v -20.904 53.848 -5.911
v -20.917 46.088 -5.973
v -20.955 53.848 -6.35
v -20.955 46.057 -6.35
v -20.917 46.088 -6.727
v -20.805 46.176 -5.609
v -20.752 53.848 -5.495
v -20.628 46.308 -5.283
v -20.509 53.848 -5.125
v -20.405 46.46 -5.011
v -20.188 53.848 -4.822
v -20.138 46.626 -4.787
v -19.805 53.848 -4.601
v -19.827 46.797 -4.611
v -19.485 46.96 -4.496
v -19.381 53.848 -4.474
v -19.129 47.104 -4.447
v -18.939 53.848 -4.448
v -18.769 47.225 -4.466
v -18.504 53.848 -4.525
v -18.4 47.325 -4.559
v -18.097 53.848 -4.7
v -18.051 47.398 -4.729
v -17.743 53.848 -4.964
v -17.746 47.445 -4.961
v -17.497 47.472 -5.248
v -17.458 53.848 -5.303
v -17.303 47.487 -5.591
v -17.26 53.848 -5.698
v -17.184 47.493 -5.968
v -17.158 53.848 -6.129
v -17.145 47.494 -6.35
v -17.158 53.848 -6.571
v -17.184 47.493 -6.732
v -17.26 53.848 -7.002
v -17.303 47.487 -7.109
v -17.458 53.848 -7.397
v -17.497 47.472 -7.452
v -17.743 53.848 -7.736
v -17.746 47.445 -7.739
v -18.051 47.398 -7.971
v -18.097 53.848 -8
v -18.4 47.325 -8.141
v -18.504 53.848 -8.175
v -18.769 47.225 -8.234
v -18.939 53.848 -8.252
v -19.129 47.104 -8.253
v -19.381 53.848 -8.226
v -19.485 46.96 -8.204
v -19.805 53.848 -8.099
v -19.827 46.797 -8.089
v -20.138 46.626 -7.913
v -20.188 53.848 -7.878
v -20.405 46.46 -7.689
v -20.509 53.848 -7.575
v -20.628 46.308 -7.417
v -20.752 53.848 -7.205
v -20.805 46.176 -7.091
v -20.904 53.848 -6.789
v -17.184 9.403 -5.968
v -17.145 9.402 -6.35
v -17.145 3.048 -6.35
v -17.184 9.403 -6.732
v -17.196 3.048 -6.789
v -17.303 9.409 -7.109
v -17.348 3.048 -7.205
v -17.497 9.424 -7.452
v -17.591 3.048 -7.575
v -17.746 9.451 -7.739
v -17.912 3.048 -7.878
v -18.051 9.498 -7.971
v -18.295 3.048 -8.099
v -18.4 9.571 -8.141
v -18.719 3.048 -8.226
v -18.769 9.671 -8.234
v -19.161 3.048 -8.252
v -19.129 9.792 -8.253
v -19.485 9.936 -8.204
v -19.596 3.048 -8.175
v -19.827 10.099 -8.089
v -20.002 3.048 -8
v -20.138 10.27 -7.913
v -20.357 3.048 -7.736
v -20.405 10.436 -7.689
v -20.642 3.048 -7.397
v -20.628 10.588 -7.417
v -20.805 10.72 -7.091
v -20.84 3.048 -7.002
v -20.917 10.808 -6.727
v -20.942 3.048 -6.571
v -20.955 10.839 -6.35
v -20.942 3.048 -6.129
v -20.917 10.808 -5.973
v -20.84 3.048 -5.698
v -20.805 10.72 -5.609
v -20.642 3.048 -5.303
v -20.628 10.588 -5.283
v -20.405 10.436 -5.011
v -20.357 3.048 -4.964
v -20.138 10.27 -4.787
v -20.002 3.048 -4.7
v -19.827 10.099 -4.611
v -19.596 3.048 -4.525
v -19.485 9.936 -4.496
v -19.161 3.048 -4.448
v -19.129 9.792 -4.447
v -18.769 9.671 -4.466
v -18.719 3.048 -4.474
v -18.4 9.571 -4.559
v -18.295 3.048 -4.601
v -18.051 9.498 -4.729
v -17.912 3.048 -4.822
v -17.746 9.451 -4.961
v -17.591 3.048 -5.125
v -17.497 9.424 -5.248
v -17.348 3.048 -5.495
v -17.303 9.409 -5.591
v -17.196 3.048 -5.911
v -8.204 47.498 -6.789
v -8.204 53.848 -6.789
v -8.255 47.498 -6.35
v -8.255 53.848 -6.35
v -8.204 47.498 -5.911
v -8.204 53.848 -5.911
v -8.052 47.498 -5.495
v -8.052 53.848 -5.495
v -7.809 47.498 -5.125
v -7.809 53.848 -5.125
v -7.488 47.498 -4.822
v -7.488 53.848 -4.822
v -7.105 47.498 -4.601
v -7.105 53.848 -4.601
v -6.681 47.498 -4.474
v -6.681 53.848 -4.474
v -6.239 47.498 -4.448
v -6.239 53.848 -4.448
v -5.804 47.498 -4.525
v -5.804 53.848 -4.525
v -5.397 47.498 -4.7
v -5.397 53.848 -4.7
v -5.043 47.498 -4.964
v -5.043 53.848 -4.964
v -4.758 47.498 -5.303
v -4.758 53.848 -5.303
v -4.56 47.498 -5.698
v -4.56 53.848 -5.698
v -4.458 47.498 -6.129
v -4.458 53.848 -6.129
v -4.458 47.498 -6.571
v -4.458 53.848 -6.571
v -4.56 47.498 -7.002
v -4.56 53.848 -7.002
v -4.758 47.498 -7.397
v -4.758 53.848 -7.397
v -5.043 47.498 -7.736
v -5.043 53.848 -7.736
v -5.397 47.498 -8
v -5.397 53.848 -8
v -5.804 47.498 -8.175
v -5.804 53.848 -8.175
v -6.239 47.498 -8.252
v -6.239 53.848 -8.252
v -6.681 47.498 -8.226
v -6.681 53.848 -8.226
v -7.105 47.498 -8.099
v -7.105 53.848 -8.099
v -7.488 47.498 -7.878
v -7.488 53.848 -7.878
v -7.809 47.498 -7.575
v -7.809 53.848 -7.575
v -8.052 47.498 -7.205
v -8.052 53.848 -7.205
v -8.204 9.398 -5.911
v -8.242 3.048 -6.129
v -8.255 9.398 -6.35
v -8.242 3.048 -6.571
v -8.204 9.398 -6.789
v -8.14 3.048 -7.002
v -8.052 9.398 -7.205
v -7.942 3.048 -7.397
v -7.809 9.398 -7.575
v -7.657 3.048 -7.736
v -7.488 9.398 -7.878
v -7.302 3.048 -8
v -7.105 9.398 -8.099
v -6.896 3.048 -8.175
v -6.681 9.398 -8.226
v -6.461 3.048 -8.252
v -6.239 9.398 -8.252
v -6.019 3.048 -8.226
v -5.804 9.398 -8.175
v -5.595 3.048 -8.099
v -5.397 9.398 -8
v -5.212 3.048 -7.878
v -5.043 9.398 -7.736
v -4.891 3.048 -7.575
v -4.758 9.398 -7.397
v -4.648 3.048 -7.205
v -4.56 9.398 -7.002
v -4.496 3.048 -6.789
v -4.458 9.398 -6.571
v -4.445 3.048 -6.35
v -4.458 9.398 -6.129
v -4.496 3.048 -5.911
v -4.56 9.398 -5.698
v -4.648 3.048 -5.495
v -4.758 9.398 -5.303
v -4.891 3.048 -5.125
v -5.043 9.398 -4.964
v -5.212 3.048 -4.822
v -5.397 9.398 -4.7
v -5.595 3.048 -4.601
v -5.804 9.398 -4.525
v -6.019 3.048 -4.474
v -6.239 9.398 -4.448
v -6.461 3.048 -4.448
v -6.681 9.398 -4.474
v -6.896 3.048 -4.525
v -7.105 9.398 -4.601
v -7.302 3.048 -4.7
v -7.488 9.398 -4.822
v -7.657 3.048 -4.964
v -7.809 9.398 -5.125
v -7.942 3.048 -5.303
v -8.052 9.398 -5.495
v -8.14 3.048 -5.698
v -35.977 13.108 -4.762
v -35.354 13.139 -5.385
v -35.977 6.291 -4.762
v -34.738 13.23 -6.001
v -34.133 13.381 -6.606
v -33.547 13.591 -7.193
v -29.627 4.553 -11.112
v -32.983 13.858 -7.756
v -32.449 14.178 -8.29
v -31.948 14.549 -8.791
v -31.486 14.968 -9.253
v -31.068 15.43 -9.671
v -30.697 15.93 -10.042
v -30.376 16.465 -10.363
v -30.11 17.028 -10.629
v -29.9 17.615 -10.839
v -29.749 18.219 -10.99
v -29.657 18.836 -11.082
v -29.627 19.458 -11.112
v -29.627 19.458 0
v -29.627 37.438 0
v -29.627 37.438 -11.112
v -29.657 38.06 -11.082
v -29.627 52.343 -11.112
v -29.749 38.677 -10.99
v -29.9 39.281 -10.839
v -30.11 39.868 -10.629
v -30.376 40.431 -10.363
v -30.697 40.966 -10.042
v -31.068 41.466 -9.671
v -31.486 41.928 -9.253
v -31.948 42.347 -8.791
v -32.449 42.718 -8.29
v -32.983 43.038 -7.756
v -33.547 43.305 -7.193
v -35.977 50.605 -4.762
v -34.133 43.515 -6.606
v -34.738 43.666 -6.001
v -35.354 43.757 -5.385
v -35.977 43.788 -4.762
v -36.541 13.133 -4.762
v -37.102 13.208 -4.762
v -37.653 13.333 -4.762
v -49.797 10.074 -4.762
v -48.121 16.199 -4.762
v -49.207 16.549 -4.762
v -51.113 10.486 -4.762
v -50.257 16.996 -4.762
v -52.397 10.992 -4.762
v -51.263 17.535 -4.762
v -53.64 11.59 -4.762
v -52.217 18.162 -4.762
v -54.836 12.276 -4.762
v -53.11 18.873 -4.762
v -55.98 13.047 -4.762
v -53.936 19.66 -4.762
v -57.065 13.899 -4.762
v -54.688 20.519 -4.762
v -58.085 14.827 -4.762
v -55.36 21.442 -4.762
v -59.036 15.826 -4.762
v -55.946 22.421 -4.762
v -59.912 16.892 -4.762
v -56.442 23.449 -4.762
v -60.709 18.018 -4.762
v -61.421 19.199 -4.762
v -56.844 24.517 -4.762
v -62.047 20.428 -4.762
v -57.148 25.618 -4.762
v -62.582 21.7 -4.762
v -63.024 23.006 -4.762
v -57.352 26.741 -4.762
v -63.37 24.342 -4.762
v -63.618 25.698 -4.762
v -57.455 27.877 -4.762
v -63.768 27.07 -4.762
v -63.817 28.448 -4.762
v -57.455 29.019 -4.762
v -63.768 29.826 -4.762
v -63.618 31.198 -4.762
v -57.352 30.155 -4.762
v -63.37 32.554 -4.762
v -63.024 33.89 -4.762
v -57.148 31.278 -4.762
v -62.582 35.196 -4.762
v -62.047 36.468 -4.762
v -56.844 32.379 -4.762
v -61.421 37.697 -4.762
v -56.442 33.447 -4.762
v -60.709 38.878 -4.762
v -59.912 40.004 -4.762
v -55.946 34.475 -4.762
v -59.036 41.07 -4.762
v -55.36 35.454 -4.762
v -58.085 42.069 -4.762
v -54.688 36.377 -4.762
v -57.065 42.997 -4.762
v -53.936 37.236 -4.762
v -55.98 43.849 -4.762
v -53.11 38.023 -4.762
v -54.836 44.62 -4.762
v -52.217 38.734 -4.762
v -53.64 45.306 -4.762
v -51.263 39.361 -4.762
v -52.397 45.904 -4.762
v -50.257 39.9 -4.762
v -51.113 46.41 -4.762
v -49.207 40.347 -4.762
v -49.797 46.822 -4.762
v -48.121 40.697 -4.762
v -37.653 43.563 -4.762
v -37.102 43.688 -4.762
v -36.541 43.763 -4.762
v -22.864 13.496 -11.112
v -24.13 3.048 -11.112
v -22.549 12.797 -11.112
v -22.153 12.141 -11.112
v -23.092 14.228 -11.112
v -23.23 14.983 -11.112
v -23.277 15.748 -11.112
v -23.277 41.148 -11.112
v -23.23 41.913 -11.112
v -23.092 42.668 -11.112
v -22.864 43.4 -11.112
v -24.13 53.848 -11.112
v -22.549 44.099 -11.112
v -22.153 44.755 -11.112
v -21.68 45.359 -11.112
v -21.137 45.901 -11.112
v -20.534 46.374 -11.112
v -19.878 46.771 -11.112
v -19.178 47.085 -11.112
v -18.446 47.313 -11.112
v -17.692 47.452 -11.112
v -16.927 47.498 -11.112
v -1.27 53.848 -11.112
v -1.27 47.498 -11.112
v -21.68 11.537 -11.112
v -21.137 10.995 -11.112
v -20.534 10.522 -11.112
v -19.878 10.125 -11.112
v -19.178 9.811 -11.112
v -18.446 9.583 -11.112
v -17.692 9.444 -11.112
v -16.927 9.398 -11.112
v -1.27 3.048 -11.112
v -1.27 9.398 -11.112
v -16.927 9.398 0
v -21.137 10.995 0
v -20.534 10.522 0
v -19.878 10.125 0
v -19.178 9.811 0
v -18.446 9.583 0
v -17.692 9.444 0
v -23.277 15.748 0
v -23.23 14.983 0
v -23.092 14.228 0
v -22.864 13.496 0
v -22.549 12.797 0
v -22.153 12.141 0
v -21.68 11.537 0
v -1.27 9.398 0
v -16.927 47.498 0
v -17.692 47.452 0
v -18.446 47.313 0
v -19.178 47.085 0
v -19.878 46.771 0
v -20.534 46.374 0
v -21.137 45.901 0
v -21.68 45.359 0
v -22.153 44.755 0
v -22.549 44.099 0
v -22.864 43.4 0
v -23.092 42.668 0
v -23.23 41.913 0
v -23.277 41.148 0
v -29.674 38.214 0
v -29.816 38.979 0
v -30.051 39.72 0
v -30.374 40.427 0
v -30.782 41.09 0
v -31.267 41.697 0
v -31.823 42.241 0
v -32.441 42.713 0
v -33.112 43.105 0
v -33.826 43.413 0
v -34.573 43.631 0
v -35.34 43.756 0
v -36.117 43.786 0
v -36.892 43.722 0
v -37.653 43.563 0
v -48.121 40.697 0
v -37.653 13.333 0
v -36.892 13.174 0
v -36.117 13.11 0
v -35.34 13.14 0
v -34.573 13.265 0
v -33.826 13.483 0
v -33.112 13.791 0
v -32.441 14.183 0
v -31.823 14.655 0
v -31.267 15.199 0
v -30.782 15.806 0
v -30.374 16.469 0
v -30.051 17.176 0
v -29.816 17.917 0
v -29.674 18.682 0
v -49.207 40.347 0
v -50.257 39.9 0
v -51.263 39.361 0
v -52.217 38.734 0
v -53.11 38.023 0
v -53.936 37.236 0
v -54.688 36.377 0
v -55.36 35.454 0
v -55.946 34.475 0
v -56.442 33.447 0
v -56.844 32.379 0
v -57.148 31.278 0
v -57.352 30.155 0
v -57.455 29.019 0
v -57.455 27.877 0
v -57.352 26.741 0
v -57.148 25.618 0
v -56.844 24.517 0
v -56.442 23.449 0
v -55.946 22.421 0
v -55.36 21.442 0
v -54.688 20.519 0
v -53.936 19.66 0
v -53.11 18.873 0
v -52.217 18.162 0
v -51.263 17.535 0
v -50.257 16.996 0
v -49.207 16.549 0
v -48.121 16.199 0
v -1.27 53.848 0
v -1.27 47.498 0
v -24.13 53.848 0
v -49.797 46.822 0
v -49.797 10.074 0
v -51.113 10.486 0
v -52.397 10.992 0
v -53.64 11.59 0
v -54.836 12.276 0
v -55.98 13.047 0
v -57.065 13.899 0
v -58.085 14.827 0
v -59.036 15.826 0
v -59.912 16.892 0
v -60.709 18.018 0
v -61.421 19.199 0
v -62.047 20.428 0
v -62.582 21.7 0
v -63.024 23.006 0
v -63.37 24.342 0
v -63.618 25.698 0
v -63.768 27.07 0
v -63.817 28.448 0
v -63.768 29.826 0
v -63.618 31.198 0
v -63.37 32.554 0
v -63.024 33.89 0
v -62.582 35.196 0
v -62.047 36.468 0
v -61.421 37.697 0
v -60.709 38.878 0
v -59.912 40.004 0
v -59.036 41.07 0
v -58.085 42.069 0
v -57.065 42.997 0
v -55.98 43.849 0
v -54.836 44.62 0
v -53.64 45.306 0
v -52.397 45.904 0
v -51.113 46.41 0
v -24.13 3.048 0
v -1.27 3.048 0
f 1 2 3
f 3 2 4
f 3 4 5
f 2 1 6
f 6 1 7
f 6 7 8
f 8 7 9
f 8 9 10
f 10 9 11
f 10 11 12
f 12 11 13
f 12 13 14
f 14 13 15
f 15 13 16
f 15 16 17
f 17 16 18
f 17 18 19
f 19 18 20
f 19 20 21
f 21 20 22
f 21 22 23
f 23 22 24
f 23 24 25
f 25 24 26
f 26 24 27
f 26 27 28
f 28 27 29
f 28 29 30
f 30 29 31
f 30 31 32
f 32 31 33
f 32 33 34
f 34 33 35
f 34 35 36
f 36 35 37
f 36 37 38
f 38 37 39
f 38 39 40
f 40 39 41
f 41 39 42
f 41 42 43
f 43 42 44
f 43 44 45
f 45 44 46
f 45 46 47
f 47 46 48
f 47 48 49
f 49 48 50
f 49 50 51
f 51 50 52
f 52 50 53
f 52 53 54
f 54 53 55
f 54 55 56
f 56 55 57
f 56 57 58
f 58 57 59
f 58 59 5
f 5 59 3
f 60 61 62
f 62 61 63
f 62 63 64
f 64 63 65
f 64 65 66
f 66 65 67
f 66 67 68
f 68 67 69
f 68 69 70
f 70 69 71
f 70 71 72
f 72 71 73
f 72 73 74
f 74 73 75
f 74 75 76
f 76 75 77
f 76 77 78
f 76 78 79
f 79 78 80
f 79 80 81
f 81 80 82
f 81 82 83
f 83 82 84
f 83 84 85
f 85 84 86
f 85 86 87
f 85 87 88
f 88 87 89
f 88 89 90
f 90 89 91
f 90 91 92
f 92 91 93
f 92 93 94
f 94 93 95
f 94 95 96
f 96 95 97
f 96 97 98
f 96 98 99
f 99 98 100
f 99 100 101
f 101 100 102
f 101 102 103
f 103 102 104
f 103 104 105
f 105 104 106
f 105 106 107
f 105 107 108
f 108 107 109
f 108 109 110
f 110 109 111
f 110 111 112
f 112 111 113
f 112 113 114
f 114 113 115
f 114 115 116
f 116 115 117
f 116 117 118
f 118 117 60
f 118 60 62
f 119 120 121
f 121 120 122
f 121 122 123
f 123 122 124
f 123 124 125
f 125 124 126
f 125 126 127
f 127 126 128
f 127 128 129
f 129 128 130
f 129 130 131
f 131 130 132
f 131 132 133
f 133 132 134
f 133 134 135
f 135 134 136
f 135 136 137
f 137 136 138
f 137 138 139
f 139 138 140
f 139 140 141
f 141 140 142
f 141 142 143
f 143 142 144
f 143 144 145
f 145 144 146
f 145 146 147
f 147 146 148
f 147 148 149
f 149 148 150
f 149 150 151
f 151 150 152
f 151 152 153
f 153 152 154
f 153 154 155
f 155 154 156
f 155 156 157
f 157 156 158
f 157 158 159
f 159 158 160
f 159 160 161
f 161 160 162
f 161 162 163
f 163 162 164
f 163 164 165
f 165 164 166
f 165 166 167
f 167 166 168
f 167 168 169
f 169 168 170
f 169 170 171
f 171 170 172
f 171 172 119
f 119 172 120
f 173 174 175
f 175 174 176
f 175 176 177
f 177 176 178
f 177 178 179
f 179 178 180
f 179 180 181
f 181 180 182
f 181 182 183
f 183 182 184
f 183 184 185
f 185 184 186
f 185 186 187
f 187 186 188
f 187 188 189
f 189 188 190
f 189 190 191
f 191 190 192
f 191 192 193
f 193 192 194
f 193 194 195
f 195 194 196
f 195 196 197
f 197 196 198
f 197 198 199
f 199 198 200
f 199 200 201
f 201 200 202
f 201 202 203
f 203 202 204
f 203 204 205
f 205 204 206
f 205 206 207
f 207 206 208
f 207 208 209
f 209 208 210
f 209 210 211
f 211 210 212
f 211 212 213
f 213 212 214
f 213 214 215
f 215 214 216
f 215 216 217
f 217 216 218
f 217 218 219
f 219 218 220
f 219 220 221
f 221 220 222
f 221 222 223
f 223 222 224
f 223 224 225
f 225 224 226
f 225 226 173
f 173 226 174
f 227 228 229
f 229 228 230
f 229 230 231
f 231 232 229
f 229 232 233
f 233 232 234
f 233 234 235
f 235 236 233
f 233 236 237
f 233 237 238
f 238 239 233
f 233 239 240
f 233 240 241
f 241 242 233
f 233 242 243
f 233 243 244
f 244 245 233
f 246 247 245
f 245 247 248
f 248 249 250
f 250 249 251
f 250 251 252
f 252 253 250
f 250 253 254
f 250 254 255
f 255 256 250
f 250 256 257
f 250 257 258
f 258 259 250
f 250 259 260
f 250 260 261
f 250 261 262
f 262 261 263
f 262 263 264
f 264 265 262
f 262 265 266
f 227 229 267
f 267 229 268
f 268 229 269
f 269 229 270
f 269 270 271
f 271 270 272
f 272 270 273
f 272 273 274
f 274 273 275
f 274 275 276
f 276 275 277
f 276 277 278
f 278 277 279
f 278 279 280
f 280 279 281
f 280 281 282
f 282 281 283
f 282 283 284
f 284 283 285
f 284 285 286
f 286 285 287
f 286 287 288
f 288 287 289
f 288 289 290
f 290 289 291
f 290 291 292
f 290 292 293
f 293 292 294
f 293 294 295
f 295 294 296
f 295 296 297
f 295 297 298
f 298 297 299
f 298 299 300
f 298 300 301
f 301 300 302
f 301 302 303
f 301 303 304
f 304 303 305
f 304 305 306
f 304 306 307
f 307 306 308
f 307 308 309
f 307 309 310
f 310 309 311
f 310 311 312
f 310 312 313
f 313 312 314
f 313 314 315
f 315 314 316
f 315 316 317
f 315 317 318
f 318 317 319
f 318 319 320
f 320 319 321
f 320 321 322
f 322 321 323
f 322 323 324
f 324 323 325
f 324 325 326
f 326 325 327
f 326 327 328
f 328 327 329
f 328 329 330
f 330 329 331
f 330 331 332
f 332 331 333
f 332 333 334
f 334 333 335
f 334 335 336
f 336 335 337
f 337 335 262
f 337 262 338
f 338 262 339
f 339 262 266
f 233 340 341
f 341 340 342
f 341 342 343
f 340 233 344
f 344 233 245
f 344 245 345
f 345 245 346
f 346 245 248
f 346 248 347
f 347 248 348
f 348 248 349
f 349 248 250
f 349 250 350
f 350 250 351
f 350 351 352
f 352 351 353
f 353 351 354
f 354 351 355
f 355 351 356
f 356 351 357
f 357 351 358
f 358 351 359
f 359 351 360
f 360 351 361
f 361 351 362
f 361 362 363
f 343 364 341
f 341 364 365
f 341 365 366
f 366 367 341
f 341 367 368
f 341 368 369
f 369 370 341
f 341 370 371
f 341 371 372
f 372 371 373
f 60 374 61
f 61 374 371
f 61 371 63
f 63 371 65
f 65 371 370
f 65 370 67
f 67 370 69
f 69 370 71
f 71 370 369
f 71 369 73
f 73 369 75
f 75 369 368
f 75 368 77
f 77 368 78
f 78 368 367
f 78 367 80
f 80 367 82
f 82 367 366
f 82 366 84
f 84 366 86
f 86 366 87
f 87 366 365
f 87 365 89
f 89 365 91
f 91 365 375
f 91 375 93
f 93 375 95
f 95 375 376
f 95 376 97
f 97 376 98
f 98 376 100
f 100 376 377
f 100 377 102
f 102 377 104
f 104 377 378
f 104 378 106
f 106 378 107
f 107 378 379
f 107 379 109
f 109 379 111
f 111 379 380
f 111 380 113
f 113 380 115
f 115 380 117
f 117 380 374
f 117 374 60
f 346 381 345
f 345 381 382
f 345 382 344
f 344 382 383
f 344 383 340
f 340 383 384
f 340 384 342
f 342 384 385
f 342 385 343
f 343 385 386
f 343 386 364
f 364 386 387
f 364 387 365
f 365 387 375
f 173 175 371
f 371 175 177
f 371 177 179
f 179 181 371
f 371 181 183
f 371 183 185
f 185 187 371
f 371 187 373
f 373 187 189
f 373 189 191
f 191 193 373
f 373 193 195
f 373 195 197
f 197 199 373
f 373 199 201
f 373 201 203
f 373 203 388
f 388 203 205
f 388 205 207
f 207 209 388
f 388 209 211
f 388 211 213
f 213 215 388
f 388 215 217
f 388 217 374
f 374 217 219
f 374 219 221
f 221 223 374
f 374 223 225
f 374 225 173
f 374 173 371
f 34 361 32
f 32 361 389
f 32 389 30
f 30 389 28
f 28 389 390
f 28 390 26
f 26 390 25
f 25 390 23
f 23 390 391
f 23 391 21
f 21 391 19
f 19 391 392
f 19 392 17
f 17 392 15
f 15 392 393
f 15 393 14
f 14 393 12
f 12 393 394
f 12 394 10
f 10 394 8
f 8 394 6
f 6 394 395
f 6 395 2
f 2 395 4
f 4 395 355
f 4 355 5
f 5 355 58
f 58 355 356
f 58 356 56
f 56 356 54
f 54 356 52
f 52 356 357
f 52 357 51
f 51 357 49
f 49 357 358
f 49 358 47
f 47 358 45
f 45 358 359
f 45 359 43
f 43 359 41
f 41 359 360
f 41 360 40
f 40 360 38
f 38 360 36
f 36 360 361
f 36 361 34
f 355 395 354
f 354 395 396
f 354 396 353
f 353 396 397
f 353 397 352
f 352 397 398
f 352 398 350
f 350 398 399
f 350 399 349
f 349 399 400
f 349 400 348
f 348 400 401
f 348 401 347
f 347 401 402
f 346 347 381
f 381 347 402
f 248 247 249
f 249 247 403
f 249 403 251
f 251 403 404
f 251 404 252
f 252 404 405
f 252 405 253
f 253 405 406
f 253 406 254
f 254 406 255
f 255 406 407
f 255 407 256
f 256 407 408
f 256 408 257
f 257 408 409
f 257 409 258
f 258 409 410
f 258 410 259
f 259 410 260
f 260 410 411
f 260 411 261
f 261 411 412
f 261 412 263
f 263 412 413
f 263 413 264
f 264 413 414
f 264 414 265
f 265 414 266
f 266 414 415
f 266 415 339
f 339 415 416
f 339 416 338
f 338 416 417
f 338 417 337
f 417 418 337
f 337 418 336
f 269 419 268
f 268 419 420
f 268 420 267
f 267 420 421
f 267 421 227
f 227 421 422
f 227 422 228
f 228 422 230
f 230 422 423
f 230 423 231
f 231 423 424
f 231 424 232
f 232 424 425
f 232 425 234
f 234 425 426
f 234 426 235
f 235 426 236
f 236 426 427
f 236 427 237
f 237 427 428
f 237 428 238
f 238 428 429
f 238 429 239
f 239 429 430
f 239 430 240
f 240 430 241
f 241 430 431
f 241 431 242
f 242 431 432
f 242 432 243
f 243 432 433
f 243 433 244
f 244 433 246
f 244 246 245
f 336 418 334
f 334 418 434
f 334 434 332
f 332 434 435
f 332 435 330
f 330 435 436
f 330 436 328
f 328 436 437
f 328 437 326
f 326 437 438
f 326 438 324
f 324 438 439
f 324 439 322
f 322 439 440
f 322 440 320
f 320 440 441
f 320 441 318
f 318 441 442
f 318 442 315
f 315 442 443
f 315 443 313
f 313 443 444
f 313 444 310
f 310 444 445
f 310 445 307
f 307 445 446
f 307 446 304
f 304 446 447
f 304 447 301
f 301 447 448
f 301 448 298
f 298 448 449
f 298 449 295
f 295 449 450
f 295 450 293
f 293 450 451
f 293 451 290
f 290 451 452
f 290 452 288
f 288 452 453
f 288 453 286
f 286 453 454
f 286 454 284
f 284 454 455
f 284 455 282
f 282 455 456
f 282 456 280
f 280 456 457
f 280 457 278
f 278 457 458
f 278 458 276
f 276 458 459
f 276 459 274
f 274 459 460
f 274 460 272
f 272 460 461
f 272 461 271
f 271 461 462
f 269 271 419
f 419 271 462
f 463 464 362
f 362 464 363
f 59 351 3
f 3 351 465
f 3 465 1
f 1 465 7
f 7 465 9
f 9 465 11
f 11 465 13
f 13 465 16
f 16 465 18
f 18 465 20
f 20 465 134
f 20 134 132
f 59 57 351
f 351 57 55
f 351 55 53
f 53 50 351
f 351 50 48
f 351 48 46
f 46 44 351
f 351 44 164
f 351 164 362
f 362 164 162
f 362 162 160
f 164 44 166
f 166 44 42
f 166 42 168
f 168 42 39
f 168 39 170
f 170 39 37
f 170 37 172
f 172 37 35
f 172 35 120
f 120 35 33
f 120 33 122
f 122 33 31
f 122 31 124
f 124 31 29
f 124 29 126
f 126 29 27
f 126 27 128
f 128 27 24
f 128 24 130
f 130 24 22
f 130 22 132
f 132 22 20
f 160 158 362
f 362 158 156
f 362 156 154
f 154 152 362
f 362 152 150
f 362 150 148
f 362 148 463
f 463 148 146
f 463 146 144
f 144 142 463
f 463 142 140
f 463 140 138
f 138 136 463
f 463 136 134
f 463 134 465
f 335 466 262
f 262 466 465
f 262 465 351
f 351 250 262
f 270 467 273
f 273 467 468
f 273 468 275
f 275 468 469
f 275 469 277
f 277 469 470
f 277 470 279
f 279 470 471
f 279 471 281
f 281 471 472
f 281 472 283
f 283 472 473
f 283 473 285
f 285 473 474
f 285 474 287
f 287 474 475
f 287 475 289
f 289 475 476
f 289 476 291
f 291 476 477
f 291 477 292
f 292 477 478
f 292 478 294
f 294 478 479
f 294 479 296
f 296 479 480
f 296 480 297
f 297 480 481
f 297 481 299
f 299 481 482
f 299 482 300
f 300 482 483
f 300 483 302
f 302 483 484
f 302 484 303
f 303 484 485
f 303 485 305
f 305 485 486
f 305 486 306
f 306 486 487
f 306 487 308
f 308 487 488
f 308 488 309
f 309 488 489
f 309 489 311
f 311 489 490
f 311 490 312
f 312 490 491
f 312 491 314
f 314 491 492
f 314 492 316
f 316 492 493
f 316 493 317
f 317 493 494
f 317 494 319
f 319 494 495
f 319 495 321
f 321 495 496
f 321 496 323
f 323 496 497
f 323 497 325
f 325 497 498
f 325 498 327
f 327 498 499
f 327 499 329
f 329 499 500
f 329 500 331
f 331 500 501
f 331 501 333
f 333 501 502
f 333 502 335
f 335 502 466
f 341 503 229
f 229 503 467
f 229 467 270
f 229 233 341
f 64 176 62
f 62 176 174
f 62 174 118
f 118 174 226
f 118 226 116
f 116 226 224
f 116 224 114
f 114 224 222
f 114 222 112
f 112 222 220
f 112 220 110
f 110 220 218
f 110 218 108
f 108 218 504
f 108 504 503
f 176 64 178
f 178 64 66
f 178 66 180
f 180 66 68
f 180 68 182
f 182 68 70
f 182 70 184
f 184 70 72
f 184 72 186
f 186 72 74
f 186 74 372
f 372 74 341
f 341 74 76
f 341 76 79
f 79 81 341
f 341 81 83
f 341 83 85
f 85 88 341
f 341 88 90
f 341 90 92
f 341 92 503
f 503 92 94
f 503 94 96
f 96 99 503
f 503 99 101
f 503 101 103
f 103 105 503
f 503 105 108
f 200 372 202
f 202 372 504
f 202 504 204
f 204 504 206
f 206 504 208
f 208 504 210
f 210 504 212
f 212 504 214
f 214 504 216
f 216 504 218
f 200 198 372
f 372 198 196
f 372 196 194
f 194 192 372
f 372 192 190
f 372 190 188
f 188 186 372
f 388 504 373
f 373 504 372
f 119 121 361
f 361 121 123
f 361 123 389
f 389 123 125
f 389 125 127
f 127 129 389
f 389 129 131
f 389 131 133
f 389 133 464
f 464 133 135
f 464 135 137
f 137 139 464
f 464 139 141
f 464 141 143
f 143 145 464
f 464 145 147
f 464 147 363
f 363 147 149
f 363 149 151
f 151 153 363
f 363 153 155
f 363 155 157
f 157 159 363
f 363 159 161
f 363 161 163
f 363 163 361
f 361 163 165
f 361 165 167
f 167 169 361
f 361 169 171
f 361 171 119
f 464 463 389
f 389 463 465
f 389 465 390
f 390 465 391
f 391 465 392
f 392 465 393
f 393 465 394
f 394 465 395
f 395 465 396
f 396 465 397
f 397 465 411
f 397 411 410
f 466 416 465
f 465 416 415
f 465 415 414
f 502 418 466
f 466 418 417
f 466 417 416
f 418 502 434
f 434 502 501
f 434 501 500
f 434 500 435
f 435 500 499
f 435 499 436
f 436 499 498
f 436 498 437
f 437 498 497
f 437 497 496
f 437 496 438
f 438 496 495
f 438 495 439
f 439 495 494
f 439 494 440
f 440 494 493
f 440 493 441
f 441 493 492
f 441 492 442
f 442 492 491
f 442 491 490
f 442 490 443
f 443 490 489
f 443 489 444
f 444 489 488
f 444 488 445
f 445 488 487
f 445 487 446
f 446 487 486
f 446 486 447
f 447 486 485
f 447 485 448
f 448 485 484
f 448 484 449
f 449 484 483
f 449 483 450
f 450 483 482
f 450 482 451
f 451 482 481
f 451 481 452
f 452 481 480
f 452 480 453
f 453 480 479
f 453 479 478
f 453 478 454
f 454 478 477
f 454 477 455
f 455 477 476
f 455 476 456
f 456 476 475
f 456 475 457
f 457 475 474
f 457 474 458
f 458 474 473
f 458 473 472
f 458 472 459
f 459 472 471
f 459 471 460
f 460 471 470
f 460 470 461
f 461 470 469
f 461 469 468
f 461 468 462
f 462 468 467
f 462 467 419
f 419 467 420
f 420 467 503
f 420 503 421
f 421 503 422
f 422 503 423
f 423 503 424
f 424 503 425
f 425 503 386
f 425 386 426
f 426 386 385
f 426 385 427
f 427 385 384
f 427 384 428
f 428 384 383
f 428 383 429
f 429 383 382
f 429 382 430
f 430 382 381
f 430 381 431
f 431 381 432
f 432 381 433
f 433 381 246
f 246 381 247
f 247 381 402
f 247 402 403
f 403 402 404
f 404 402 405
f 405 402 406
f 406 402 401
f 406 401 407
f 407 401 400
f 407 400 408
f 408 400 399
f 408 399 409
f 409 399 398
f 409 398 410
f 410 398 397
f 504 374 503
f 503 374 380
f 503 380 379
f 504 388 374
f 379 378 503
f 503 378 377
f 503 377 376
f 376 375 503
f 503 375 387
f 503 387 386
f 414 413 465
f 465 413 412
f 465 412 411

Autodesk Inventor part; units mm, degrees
ref_plane "YZ Plane" through (0, 0, 0) normal (1, 0, 0) x (0, 1, 0)
ref_plane "XZ Plane" through (0, 0, 0) normal (0, 1, 0) x (-1, 0, 0)
ref_plane "XY Plane" through (0, 0, 0) normal (0, 0, 1) x (1, 0, 0)
sketch "Sketch2" plane through (0, 0, 0) normal (0, 0, 1) x (1, 0, 0)
  arc A0 (-42.61997, 14.00175) -> (-42.61997, 42.89425) centre (-44.7675, 28.448) ccw
  line L0 (-19.05, 53.848) -> (-6.35, 53.848)
  line L1 (-6.35, 3.048) -> (-19.05, 3.048)
  line L2 (-8.255, 3.048) -> (-4.445, 3.048)
  line L3 (-20.955, 3.048) -> (-17.145, 3.048)
  line L4 (-4.445, 53.848) -> (-8.255, 53.848)
  line L5 (-17.145, 53.848) -> (-20.955, 53.848)
  circle A1 centre (-44.7675, 28.448) radius 12.7
  arc A2 (-49.797098, 46.822048) -> (-49.797098, 10.073952) centre (-44.7675, 28.448) ccw
  line L6 (-24.13, 3.048) -> (-49.797098, 10.073952)
  line L7 (-49.797098, 46.822048) -> (-24.13, 53.848)
  line L8 (-1.27, 3.048) -> (-1.27, 9.398)
  line L9 (-1.27, 53.848) -> (-1.27, 47.498)
  line L10 (-1.27, 9.398) -> (-23.276593, 9.398)
  line L11 (-23.276593, 9.398) -> (-48.120565, 16.198635)
  line L12 (-48.120565, 40.697365) -> (-23.276593, 47.498)
  line L13 (-23.276593, 47.498) -> (-1.27, 47.498)
  line L14 (-1.27, 3.048) -> (-24.13, 3.048)
  line L15 (-24.13, 53.848) -> (-1.27, 53.848)
  line L16 (-23.276593, 9.398) -> (-23.276593, 47.498)
  line L17 (-29.626593, 11.13621) -> (-29.626593, 45.75979)
  point P0 (0, 0)
  point P1 (-12.7, 3.048)
  point P2 (-12.7, 53.848)
extrude "Extrusion1" add sketch "Sketch2" against normal blind 4.7625 contours L11 L10 L8 L14 L2 L1 L3 L6 A2 L7 L15 L5 L0 L4 L9 L13 L12 A1 | L17 L12 L16 L11
fillet "Fillet1" radius 6.35 4 edges at (-29.6266, 11.1362, -2.3813) (-29.6266, 45.7598, -2.3813) (-23.2766, 47.498, -2.3813) (-23.2766, 9.398, -2.3813)
sketch "Sketch3" plane through (0, 0, -4.7625) normal (0, 0, -1) x (-1, 0, 0)
  line L0 (1.27, 47.498) -> (16.926593, 47.498)
  arc A0 (23.276593, 41.148) -> (16.926593, 47.498) centre (16.926593, 41.148) ccw
  line L1 (23.276593, 41.148) -> (23.276593, 15.748)
  arc A1 (16.926593, 9.398) -> (23.276593, 15.748) centre (16.926593, 15.748) ccw
  line L2 (16.926593, 9.398) -> (1.27, 9.398)
  line L3 (1.27, 9.398) -> (1.27, 3.048)
  line L4 (1.27, 3.048) -> (24.13, 3.048)
  line L5 (24.13, 3.048) -> (49.797098, 10.073952)
  arc A2 (49.797098, 10.073952) -> (49.797098, 46.822048) centre (44.7675, 28.448) ccw
  line L6 (49.797098, 46.822048) -> (24.13, 53.848)
  line L7 (24.13, 53.848) -> (1.27, 53.848)
  line L8 (1.27, 53.848) -> (1.27, 47.498)
  line L9 (48.120565, 16.198635) -> (37.653126, 13.333343)
  arc A3 (29.626593, 19.458025) -> (37.653126, 13.333343) centre (35.976593, 19.458025) ccw
  line L10 (29.626593, 19.458025) -> (29.626593, 37.437975)
  arc A4 (37.653126, 43.562657) -> (29.626593, 37.437975) centre (35.976593, 37.437975) ccw
  line L11 (37.653126, 43.562657) -> (48.120565, 40.697365)
  arc A5 (48.120565, 16.198635) -> (48.120565, 40.697365) centre (44.7675, 28.448) ccw
  line L12 (29.626593, 19.458025) -> (29.626593, 4.552603)
  line L13 (29.626593, 37.437975) -> (29.626593, 52.343397)
  point P0 (0, 0)
extrude "Extrusion2" add sketch "Sketch3" along normal blind 6.35 contours L8 L7 L6 L13 L10 L12 L5 L4 L3 L2 A1 L1 A0 L0
chamfer "Chamfer1" distance 6.35 angle 45 2 edges at (-29.6266, 44.8907, -4.7625) (-29.6266, 12.0053, -4.7625)
sketch "Sketch4" plane through (-24.13, 3.048, 0) normal (0, -1, 0) x (1, 0, 0)
  circle A0 centre (17.78, -6.35) radius 1.905 projected
  circle A1 centre (5.08, -6.35) radius 1.905 projected
  point P0 (24.13, 0)
extrude "Extrusion3" cut sketch "Sketch4" against normal through all
properties part number "Lower Guide_3DPrint"
